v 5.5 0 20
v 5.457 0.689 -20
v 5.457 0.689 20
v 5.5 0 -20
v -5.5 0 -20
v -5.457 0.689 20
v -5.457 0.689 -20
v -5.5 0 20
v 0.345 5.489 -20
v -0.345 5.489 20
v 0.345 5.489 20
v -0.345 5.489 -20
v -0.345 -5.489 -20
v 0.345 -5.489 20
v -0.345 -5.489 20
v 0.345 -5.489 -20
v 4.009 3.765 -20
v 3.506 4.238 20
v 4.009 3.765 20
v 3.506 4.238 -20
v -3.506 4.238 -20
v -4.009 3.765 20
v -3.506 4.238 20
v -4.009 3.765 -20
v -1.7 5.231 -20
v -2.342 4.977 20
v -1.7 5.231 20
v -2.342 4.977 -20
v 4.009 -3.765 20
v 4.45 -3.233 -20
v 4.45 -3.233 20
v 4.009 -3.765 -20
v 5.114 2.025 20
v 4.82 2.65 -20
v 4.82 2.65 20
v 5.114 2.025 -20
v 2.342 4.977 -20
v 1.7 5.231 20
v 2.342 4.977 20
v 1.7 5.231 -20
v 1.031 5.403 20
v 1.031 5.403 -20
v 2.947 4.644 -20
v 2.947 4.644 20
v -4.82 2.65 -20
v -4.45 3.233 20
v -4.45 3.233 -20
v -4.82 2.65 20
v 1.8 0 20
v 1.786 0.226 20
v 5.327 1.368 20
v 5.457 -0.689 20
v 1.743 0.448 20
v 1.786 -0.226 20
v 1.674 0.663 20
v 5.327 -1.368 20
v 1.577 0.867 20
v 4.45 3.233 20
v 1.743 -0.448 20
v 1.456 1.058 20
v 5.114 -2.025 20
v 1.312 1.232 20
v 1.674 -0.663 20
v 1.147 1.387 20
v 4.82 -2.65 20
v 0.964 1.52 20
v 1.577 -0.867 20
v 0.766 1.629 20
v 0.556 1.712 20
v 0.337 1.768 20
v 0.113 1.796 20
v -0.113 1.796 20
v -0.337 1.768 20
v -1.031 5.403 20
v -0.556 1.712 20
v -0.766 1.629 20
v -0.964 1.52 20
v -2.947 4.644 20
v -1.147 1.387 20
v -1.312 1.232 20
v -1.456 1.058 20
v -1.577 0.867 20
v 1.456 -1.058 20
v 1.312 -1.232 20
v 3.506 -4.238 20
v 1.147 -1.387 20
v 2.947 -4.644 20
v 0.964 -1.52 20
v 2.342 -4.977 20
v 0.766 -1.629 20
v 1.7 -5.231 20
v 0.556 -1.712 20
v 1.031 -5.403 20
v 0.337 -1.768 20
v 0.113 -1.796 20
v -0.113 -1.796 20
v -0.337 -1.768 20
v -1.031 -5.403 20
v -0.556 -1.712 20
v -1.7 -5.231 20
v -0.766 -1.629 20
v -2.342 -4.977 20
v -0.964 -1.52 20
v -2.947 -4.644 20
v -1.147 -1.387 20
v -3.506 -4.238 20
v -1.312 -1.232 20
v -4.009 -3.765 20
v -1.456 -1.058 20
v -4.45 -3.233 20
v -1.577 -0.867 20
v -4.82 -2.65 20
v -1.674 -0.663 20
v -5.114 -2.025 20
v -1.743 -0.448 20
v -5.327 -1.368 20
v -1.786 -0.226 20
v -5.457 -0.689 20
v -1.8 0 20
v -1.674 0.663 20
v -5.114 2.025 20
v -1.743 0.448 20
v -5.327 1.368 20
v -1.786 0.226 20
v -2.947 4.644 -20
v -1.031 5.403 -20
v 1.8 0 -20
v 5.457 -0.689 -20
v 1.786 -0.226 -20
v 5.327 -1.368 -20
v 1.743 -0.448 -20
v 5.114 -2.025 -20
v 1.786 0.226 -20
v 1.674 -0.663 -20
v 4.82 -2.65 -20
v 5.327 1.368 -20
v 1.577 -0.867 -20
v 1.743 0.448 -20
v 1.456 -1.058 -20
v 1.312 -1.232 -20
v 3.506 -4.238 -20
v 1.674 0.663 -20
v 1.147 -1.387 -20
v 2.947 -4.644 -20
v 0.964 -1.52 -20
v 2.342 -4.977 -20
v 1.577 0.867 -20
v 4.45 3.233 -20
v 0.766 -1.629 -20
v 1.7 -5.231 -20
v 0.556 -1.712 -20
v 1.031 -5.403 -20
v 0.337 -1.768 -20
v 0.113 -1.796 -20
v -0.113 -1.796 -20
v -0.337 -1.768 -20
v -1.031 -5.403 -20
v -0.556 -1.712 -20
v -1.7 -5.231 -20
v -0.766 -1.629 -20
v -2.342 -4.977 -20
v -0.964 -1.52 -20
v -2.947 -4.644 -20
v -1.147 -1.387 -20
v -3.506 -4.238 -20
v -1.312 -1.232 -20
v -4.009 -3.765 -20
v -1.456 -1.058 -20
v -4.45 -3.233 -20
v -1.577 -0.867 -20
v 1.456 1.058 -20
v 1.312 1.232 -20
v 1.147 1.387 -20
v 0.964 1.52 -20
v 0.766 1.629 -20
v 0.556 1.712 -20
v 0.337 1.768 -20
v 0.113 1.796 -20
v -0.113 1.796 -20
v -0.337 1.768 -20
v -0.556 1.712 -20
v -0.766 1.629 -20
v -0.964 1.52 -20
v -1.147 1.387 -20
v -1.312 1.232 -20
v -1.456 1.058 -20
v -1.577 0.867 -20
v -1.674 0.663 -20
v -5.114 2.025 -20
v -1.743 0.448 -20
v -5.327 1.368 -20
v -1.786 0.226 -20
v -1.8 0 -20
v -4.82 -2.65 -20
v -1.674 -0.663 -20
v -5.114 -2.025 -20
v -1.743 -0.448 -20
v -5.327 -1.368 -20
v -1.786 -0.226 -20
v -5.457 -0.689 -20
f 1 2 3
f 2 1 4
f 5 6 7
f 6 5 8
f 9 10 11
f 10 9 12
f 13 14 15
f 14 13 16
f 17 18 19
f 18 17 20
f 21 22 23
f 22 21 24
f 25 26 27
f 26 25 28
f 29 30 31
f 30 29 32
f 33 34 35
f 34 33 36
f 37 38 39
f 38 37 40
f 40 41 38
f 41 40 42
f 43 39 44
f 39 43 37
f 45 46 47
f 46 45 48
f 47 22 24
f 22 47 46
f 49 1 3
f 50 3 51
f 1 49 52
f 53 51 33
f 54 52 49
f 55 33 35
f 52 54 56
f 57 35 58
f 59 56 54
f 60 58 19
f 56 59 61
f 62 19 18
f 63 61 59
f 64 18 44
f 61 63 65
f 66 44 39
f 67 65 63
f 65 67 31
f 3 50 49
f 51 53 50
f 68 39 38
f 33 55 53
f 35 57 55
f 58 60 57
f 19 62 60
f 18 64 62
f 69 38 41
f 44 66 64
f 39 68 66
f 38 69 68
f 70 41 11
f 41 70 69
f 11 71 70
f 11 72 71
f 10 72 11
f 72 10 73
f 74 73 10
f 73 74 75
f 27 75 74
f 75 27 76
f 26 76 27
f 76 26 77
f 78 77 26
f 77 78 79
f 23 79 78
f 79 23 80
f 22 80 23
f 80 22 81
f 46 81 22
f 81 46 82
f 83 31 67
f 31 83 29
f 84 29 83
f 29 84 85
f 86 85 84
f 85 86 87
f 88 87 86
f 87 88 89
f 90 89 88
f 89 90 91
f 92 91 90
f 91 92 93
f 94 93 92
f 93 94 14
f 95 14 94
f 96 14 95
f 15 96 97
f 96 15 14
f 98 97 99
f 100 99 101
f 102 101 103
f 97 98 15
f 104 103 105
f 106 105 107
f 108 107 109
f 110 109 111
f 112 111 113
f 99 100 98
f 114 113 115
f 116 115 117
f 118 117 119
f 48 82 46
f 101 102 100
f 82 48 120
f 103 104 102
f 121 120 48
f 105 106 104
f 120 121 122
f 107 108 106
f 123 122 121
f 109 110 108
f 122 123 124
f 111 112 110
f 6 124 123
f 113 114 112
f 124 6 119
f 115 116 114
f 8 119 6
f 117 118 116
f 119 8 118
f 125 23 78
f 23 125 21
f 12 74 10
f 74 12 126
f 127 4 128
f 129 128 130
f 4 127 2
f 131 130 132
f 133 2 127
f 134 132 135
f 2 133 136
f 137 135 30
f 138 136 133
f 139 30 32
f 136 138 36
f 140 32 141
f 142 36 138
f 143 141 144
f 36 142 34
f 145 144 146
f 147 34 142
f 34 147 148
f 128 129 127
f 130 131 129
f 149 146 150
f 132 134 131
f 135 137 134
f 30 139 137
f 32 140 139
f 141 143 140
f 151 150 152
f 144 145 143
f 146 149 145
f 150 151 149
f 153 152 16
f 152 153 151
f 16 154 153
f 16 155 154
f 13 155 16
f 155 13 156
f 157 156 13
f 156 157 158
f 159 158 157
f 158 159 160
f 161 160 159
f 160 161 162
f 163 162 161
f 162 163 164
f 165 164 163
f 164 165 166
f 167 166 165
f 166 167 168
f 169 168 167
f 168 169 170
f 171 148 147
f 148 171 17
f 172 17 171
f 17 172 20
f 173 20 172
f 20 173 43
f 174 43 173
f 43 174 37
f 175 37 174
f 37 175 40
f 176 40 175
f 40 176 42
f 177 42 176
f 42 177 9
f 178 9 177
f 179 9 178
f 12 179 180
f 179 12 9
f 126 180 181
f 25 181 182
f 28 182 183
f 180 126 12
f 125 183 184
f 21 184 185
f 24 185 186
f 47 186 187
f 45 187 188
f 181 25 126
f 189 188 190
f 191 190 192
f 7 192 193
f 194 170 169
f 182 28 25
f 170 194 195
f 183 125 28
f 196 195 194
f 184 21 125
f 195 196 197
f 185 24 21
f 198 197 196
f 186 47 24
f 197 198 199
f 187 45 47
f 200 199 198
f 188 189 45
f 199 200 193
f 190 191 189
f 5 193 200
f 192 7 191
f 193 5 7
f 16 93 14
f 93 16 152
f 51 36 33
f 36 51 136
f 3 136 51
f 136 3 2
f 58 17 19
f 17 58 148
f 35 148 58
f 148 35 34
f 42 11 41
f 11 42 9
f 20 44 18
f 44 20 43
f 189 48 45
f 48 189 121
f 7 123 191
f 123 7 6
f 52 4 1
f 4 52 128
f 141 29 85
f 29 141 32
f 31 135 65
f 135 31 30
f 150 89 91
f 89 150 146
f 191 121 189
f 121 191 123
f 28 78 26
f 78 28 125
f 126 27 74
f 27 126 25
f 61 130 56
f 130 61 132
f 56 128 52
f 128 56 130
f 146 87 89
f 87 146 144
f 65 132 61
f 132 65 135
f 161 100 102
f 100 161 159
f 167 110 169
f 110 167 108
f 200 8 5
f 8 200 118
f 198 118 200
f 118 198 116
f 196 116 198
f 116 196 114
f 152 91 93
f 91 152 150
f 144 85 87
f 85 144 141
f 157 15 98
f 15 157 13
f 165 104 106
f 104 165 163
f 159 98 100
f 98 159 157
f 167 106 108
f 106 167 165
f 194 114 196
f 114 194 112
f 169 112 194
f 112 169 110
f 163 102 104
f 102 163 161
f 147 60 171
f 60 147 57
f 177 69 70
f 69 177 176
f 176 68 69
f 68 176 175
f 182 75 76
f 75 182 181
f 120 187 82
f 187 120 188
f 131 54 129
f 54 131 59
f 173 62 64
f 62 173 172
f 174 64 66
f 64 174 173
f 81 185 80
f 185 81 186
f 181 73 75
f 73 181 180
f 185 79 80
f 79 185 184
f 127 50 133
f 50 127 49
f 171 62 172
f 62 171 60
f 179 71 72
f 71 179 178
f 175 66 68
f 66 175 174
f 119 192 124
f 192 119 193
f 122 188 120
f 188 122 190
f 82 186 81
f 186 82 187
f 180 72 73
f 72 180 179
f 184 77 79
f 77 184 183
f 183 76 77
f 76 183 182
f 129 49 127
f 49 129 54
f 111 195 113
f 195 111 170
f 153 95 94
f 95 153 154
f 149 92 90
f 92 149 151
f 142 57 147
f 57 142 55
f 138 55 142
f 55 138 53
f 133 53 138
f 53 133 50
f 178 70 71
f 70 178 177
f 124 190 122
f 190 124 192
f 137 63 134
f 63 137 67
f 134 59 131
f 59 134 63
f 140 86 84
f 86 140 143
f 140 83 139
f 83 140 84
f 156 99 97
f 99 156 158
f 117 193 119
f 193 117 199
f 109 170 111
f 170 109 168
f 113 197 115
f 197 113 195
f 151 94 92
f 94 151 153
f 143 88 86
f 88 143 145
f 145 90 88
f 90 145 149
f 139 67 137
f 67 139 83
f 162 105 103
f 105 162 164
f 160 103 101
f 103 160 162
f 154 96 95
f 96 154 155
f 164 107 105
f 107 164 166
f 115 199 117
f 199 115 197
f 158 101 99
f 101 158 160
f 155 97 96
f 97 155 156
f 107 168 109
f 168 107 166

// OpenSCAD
$fn = 50;


difference() {
	union() {
		translate(v = [0, 0, -20.0000000000]) {
			cylinder(h = 40, r = 5.5000000000);
		}
	}
	union() {
		translate(v = [0, 0, -100.0000000000]) {
			cylinder(h = 200, r = 1.8000000000);
		}
	}
}
